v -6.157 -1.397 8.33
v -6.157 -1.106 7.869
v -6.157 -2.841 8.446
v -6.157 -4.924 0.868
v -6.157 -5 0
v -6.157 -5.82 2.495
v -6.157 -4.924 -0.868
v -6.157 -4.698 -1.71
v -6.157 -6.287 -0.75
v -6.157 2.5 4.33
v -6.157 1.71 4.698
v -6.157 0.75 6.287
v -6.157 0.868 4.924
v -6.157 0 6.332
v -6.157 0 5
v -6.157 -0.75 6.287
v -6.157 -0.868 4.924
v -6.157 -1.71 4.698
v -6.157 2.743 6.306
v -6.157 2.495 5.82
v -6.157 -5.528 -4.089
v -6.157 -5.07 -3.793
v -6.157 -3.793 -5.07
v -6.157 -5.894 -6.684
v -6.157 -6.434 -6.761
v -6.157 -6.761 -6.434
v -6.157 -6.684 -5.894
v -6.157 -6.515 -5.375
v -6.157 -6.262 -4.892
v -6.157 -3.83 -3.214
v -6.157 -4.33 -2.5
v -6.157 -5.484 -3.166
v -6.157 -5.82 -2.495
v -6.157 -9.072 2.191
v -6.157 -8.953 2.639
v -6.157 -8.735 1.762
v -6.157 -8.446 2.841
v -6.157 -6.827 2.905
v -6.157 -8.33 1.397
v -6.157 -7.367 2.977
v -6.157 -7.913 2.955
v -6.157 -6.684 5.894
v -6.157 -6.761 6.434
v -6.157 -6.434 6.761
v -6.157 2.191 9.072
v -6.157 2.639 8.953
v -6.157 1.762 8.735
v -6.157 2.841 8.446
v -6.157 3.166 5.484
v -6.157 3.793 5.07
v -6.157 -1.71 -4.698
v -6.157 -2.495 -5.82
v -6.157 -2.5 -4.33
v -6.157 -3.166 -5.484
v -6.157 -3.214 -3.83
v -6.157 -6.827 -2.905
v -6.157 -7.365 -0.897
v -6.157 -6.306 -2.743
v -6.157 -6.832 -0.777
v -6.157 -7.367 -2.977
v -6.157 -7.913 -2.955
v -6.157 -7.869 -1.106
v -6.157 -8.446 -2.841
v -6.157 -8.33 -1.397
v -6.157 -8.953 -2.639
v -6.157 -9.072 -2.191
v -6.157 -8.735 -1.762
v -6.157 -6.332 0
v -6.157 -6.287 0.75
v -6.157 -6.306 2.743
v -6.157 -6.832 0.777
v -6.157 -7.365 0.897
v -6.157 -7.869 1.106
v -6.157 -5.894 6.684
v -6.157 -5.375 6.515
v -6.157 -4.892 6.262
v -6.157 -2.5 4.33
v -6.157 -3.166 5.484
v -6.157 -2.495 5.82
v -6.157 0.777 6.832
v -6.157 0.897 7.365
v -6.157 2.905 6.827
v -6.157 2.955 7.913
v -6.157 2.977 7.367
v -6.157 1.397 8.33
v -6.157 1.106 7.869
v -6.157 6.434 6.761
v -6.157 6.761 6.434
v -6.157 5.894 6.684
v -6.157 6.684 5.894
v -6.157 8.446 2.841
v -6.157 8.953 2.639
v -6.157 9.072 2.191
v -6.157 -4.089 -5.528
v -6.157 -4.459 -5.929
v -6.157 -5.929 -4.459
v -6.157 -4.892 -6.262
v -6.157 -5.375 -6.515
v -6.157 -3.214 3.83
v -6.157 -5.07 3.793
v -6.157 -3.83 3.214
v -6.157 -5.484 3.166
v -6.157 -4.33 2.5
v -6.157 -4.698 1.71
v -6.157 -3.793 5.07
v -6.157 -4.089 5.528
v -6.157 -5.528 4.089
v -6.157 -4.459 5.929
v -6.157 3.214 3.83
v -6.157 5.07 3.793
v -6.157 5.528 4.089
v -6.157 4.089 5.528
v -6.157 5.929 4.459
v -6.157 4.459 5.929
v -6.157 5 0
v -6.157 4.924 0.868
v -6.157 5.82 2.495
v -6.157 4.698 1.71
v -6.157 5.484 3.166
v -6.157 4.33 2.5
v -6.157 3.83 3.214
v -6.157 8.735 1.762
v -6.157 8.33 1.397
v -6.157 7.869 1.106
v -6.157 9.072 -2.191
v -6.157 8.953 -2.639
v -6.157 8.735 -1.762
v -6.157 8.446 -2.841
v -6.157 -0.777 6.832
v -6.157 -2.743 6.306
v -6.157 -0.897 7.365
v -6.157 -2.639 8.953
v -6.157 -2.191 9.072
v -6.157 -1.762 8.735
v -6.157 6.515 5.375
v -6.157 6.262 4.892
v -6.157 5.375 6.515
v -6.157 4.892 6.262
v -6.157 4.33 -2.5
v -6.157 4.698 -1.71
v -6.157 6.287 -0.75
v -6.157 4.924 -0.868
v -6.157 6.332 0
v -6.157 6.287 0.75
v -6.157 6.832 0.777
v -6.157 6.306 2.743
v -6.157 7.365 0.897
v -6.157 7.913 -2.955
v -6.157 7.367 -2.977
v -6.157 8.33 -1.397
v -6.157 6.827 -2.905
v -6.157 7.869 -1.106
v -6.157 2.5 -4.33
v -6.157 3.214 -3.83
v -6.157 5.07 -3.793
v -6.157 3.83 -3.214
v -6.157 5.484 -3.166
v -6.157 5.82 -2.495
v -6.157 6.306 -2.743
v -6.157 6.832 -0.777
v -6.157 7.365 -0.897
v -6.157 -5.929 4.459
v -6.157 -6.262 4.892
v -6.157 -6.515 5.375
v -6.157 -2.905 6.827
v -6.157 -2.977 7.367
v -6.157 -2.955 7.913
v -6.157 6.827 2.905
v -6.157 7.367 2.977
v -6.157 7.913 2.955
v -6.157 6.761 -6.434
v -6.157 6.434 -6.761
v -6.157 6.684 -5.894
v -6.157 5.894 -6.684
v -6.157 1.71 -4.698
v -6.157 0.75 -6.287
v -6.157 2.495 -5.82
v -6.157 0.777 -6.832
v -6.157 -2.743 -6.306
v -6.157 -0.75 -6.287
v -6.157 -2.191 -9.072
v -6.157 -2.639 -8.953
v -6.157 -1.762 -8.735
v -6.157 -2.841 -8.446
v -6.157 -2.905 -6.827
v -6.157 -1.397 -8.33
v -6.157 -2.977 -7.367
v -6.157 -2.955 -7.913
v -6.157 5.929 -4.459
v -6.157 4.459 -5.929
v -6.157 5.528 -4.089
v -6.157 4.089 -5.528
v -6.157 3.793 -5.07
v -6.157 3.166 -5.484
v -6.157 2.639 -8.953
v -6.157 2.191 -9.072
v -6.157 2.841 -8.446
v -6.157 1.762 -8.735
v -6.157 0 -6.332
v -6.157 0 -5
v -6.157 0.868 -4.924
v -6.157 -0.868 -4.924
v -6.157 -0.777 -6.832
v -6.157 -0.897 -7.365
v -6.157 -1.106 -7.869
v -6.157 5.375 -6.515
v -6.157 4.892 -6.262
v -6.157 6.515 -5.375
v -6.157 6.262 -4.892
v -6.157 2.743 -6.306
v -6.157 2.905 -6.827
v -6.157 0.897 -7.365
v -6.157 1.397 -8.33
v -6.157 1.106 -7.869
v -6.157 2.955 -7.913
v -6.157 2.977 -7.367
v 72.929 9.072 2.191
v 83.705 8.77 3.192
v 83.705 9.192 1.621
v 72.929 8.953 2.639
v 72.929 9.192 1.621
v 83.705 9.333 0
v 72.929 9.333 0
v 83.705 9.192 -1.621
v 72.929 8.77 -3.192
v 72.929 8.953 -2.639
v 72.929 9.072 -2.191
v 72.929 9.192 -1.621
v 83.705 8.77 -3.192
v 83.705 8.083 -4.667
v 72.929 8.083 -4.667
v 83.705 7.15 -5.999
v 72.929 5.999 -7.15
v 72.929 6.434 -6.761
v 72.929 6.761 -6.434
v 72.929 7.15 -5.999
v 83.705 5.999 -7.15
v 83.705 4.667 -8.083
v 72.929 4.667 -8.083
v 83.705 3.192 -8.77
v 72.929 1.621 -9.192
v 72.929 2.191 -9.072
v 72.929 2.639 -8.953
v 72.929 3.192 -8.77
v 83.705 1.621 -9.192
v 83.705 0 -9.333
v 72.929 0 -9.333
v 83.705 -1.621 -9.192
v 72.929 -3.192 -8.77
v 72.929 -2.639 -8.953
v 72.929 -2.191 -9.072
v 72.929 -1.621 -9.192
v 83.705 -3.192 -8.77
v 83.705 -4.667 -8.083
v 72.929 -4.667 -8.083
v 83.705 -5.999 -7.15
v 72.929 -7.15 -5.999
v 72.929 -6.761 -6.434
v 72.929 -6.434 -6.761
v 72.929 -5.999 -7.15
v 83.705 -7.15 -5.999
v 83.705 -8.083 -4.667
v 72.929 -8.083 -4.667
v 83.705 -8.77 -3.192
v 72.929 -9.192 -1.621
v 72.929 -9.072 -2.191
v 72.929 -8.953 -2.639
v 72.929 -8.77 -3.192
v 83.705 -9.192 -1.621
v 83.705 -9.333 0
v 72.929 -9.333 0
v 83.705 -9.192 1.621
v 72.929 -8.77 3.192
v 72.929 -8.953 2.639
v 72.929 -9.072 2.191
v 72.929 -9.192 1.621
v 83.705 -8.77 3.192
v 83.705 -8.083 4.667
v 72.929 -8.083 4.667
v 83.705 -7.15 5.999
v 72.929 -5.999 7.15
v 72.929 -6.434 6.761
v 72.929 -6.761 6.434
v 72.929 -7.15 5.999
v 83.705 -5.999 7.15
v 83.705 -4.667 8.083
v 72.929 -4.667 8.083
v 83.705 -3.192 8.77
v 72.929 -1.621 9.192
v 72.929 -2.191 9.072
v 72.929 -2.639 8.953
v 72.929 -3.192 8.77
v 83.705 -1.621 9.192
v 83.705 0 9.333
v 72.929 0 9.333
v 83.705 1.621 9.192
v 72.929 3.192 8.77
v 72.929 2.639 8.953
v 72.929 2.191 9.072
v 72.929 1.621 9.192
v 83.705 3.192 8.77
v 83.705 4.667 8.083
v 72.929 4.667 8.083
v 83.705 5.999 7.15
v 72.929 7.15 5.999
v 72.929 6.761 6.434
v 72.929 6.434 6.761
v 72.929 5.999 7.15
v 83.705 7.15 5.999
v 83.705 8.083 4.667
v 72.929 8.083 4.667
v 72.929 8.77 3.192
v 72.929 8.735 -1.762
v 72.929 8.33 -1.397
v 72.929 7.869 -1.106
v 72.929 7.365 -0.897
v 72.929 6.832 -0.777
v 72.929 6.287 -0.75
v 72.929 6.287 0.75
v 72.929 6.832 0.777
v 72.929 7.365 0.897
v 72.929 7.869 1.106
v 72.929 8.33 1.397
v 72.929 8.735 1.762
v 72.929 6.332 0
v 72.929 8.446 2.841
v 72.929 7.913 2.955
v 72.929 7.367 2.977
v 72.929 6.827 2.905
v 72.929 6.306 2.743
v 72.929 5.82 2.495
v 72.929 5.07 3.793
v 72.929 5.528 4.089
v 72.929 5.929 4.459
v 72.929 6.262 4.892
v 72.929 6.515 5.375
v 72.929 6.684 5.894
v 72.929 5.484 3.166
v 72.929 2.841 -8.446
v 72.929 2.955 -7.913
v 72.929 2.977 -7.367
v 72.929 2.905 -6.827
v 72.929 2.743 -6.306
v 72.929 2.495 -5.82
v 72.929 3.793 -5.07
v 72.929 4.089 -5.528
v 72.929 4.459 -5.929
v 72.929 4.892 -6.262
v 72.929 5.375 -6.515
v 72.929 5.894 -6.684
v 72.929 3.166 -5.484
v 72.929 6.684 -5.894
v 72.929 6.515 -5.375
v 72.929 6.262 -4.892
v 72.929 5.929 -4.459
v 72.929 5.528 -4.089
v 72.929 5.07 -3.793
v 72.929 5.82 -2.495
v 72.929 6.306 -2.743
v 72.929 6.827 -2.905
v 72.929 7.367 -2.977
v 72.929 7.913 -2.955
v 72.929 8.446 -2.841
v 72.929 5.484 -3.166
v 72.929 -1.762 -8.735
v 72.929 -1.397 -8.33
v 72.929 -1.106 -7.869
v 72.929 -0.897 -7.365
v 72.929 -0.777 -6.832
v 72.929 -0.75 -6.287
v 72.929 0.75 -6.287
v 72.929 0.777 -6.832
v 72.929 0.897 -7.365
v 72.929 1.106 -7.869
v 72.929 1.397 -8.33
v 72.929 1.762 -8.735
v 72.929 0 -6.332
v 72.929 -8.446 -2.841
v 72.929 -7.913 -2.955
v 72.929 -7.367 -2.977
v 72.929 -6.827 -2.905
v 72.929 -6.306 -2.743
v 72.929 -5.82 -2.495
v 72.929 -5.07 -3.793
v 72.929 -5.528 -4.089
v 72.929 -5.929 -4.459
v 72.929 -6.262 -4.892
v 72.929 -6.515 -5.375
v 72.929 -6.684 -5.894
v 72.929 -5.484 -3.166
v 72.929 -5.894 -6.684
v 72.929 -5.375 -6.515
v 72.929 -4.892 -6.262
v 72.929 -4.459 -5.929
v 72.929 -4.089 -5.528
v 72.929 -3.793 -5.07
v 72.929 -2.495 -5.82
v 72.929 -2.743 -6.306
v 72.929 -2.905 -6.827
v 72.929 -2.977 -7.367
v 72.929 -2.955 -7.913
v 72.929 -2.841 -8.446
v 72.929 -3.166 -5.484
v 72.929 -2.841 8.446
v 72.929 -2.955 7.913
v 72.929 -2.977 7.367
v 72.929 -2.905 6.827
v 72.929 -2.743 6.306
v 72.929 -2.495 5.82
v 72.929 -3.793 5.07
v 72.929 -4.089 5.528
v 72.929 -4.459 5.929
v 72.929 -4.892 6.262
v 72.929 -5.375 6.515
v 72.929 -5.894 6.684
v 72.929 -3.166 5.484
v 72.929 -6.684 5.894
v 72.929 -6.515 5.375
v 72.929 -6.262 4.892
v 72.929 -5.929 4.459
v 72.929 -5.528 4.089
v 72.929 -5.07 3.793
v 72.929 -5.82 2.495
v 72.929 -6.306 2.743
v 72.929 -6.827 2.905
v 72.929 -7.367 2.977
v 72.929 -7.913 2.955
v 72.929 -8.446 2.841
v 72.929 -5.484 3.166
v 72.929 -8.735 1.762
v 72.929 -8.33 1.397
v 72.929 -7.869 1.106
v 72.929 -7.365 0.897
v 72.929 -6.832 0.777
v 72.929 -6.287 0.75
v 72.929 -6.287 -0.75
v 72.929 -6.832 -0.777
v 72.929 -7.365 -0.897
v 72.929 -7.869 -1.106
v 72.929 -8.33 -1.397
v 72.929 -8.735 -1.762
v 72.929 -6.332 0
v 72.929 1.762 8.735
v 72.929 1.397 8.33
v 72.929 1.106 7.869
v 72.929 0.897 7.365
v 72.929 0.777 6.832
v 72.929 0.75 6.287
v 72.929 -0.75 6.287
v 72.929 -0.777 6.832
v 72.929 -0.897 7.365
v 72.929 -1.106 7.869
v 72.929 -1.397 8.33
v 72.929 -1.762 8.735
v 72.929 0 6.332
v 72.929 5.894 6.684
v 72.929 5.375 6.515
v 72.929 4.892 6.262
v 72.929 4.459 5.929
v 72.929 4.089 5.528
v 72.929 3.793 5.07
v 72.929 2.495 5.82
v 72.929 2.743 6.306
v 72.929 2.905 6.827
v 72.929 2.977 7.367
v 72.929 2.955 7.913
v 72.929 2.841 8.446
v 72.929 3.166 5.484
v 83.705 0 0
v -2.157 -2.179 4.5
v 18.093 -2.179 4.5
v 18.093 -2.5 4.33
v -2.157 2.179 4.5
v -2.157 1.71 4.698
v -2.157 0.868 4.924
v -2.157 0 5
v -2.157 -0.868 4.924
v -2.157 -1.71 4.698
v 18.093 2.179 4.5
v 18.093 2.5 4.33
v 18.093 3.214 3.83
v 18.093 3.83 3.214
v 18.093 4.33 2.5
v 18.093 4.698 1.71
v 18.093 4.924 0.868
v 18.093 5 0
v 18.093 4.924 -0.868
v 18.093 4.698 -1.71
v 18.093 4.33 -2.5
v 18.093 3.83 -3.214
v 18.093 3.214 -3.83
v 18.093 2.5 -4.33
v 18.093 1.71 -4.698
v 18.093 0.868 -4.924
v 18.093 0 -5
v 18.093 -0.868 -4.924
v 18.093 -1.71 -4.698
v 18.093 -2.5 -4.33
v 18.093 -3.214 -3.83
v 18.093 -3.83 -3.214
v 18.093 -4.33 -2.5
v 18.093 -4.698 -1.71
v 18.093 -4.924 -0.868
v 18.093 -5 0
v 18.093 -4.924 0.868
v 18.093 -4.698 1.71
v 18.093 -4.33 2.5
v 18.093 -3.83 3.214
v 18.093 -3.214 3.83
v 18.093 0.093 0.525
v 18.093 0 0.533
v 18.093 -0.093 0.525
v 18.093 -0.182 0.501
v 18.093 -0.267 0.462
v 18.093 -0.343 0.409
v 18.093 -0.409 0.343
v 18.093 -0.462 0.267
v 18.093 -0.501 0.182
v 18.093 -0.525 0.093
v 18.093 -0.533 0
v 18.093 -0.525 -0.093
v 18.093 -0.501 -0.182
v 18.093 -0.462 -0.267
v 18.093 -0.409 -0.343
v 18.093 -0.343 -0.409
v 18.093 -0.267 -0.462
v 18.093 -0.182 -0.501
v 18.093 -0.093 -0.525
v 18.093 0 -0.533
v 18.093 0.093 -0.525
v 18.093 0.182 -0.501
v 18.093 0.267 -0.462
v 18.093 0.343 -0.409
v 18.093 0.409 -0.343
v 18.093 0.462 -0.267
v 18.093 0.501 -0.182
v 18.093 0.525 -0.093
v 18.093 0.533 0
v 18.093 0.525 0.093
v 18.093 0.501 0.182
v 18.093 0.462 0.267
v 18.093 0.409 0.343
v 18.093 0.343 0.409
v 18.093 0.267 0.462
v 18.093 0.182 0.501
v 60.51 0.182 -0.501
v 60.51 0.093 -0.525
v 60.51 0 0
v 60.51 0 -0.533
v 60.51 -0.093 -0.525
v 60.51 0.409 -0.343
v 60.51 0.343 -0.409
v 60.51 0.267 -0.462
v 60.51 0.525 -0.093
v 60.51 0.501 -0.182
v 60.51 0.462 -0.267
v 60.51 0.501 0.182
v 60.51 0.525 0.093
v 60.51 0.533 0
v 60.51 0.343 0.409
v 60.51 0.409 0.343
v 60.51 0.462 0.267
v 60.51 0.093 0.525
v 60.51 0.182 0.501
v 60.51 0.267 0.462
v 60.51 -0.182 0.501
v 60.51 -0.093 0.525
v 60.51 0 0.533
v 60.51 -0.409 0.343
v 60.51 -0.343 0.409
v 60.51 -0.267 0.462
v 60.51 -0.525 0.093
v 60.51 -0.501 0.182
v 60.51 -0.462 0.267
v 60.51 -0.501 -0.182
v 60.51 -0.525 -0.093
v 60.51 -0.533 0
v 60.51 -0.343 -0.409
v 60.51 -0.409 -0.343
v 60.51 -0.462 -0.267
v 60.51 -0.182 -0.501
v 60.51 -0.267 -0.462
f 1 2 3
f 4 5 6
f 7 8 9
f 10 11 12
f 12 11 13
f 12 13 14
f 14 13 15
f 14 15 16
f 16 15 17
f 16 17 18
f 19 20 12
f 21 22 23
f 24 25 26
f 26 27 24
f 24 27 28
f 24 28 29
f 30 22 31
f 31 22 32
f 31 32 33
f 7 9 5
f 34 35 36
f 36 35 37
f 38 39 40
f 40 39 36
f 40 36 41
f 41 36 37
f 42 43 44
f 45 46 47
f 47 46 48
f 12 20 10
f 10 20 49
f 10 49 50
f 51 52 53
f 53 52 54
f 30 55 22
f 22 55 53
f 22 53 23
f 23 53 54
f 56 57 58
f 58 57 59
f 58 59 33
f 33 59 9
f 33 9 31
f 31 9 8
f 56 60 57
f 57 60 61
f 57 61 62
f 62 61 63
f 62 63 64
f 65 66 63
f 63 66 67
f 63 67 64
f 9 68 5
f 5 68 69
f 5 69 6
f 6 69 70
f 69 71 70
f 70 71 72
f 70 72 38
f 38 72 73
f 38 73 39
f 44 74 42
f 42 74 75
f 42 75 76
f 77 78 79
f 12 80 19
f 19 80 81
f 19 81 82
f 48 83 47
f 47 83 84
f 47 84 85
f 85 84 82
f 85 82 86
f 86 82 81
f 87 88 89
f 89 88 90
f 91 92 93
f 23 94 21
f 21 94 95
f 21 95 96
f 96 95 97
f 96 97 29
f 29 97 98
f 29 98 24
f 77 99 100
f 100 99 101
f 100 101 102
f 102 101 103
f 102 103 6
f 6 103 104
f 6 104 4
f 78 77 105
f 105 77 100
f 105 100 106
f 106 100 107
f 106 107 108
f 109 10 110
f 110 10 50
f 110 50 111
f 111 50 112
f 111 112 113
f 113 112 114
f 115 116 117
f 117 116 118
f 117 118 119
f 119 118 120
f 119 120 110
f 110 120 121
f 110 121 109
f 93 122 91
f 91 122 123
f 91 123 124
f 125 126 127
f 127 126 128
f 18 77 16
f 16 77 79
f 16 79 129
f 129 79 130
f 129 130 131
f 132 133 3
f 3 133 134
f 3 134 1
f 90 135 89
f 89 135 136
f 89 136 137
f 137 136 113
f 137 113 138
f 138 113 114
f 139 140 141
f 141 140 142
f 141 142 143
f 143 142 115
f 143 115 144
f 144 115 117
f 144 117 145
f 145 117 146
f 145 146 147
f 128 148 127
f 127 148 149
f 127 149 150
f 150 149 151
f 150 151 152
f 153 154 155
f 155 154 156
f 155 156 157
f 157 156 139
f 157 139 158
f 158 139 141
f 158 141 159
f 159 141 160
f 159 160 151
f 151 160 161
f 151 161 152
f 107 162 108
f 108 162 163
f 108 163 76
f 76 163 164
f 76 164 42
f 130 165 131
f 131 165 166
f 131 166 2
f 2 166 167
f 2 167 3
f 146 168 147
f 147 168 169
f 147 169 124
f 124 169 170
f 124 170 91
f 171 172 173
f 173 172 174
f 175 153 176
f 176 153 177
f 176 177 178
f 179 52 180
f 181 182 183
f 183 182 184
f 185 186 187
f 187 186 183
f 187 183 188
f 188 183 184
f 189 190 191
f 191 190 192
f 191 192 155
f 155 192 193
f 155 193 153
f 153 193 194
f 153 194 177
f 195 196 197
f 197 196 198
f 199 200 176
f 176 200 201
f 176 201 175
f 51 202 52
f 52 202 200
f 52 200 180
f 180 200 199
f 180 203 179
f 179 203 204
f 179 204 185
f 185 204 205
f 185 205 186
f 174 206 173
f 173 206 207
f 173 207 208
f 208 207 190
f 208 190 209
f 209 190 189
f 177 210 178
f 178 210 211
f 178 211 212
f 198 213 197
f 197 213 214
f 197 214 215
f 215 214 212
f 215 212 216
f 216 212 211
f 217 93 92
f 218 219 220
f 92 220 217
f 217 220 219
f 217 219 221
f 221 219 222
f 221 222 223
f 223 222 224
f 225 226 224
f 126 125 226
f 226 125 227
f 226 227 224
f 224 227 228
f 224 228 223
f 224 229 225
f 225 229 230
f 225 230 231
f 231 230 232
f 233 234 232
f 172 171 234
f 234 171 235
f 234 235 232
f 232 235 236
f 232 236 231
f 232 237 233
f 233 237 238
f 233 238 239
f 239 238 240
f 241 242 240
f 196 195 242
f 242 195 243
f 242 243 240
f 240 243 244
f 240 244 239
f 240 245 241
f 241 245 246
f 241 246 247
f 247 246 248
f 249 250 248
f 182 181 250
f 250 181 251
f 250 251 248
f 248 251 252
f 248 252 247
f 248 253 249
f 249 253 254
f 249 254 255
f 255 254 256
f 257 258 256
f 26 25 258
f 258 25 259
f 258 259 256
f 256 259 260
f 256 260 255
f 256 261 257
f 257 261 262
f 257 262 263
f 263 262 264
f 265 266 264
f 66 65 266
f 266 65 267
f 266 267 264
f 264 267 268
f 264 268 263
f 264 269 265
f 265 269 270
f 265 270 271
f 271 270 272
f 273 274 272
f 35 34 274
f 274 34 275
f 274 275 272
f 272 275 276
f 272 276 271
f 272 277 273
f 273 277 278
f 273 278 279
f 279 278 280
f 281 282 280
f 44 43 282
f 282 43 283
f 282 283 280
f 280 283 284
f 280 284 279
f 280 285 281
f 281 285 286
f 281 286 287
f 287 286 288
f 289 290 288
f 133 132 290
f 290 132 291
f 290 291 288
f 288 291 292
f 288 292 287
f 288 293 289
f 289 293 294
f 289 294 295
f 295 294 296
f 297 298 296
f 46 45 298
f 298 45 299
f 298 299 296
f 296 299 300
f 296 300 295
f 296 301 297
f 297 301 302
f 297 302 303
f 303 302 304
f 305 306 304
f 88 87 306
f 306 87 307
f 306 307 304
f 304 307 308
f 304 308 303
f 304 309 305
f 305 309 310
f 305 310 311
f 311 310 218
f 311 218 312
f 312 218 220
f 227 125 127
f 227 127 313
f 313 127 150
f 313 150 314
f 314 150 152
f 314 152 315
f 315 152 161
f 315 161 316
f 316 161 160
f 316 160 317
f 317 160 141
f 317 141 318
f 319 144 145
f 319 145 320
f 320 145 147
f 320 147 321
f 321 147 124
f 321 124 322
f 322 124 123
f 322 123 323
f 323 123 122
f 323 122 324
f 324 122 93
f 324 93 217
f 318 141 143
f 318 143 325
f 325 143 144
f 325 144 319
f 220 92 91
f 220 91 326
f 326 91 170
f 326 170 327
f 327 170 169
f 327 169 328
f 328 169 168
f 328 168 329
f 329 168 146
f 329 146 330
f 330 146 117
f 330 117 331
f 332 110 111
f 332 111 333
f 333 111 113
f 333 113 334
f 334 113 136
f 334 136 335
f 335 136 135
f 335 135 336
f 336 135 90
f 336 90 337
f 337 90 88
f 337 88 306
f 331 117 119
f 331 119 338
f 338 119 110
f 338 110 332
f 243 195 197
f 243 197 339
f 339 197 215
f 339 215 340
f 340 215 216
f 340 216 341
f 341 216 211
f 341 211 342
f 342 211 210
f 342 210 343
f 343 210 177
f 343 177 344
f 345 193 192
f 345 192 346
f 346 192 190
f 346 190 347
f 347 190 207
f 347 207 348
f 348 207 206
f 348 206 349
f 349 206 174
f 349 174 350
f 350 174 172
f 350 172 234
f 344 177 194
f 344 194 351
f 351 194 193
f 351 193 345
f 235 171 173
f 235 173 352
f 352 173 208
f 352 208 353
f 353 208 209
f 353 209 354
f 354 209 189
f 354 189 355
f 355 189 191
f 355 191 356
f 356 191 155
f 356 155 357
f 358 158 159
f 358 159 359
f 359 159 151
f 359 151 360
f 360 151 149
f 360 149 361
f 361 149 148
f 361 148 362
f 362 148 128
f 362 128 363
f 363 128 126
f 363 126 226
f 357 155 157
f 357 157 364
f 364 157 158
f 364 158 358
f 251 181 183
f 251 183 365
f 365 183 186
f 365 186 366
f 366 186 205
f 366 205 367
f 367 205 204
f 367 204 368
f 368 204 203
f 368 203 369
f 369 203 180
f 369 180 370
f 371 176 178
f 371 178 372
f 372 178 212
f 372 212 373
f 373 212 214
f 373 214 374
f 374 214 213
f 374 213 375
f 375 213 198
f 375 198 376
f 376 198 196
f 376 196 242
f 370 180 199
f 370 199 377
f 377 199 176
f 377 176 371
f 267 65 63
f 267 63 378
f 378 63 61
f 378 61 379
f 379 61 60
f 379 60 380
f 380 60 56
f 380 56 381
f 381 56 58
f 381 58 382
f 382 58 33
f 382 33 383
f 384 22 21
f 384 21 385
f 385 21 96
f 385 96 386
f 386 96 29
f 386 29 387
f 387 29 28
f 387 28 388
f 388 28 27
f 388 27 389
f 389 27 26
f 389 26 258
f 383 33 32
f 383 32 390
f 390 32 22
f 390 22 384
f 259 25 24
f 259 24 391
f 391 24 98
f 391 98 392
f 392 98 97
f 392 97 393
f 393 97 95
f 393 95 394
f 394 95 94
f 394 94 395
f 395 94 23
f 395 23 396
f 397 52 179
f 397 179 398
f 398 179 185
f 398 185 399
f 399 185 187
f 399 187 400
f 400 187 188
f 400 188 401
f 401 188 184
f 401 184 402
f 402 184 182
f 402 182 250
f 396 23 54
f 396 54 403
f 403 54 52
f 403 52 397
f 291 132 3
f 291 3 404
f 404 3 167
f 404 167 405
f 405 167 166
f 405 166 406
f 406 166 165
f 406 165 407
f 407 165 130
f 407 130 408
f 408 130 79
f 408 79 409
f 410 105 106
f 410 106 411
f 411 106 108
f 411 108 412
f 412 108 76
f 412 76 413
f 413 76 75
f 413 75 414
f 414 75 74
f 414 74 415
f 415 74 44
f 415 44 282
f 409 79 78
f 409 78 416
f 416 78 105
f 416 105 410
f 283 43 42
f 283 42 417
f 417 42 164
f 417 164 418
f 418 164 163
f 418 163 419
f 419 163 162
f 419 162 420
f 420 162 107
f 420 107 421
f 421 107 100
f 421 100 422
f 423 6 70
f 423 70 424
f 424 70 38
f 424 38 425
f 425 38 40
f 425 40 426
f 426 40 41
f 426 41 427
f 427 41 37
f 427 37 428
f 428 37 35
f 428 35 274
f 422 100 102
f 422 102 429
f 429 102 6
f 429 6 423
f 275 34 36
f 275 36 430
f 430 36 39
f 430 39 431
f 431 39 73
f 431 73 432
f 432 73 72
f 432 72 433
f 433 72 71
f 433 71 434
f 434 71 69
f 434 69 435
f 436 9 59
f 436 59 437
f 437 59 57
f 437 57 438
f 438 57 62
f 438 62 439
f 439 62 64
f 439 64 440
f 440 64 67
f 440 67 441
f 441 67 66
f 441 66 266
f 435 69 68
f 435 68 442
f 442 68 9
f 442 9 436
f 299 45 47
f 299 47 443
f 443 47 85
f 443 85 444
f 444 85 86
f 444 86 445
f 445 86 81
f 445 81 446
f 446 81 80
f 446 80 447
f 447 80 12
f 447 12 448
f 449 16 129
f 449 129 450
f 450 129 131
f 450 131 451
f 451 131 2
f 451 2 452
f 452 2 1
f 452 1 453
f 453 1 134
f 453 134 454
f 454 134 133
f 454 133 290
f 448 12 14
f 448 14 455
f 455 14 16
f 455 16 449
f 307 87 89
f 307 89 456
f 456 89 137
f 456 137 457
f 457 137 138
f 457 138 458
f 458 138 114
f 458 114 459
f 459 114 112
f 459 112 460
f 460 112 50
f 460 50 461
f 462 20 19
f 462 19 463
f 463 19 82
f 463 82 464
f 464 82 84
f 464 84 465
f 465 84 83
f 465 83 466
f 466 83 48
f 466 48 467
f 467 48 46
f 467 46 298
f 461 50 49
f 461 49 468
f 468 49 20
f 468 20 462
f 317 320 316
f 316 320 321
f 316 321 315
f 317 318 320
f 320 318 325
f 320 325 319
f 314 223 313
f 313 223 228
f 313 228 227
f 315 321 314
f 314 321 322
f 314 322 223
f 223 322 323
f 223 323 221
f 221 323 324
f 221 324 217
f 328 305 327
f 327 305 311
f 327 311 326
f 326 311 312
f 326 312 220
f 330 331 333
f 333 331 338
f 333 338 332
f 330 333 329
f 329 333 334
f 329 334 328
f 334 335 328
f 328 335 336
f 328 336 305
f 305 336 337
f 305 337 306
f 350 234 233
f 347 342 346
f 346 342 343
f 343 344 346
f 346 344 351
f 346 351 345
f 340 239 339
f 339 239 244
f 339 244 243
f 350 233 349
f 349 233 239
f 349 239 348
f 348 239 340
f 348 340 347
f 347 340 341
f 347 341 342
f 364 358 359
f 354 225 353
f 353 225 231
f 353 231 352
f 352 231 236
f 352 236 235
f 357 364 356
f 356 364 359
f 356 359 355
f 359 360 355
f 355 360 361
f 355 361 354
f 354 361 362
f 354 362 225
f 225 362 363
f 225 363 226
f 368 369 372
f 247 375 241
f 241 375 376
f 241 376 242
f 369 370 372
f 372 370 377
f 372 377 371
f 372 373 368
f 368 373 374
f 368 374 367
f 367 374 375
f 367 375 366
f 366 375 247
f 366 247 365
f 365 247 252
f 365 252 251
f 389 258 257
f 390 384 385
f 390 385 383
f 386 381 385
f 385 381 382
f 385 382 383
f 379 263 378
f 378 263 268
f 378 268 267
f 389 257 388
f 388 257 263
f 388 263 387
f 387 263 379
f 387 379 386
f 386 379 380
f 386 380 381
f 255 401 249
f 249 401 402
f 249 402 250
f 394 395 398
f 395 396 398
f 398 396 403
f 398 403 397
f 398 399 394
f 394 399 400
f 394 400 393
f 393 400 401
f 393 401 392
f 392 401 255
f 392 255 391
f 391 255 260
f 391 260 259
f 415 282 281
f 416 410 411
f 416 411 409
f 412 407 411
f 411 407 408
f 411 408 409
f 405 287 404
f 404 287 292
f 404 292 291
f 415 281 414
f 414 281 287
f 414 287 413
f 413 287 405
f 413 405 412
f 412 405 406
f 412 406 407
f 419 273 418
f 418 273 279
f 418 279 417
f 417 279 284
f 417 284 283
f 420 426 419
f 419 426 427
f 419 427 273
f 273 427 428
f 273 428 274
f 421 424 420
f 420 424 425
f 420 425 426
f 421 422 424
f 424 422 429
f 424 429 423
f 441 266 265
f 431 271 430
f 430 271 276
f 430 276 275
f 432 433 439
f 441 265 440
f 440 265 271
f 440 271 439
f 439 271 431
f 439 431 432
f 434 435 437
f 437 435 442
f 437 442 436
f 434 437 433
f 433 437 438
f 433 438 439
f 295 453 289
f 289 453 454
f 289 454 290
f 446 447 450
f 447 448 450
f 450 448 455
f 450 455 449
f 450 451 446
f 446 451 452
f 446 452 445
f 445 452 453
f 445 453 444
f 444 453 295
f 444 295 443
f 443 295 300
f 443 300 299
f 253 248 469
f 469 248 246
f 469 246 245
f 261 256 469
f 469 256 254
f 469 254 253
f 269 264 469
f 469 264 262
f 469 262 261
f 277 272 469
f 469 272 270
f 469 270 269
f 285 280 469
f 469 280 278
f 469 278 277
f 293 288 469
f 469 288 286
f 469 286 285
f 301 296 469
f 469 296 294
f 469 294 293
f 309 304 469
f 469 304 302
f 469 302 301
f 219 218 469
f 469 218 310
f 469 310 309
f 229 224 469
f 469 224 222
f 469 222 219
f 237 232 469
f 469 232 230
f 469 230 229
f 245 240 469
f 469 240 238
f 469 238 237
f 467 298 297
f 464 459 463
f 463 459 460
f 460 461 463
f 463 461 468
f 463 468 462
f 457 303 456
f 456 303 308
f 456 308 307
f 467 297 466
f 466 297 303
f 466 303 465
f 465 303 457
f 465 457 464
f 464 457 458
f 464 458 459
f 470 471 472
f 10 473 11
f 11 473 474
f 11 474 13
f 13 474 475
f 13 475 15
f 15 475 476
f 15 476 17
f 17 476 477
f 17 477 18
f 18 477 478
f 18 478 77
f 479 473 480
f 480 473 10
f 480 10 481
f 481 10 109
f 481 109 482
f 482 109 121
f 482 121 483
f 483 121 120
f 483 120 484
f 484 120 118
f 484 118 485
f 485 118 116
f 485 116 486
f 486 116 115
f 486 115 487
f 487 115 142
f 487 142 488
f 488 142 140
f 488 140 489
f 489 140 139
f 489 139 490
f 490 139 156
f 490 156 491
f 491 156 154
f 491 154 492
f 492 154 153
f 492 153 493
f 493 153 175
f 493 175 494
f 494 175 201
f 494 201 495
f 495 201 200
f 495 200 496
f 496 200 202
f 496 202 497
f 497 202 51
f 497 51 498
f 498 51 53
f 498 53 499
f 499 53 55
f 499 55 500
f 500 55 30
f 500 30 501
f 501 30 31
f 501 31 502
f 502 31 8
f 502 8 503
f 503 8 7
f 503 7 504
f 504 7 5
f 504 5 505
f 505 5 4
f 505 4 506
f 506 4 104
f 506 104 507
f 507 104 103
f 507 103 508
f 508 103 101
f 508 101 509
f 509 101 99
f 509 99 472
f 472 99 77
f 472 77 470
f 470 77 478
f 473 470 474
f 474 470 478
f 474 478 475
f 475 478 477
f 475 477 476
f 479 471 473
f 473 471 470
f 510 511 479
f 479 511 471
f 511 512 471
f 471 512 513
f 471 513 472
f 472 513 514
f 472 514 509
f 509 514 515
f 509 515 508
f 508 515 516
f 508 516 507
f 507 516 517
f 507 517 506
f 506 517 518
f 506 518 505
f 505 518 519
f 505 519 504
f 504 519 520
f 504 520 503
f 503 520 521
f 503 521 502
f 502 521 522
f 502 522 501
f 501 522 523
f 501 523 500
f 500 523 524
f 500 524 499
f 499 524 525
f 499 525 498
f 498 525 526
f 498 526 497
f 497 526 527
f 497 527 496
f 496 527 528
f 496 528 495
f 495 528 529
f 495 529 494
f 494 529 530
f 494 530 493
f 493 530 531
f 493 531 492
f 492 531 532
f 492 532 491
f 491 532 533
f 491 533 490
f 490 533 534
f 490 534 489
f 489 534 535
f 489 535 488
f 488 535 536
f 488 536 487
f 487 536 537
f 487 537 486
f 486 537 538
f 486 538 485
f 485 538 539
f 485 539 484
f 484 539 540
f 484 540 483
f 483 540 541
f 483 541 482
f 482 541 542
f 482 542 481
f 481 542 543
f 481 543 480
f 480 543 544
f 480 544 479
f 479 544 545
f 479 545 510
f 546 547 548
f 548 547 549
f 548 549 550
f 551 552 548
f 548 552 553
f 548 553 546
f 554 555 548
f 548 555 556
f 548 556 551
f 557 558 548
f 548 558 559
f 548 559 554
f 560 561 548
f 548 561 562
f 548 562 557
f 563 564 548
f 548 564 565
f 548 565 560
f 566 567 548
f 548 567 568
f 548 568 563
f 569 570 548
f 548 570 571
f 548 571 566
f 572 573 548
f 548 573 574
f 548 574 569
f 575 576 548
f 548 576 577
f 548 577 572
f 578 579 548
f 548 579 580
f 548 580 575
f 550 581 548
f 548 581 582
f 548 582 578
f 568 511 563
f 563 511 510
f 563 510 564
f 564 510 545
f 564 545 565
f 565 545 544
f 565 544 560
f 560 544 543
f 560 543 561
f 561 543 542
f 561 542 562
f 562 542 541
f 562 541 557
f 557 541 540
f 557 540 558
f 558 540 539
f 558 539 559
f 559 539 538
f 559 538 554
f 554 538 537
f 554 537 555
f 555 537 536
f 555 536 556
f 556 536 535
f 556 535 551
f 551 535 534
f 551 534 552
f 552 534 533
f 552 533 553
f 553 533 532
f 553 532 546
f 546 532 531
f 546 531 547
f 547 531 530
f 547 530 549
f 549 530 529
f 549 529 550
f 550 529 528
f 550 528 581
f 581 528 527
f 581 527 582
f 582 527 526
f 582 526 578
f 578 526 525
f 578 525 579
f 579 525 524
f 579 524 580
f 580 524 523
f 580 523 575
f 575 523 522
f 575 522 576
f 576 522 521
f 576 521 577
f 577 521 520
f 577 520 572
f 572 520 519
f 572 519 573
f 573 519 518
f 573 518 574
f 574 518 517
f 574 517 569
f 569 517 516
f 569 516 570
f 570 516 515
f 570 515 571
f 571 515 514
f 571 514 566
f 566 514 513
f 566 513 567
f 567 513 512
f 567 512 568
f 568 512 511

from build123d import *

# Parameters (mm, degrees)
BASPROSKE_W         = 59.315
BASPROSKE_H         = 7
TOOTHCUT_DEPTH      = 61.135424044
TEETHCUTS_COUNT     = 12
TEETHCUTS_ANGLE     = 330
BORSKE_R            = 0.4
BORE_DEPTH          = 50.0000508
SCALE1_SCALE        = 2
BOSS_EXTRUDE1_START = 16.163
SKETCH9_R           = 14
BOSS_EXTRUDE1_DEPTH = 16.163
SCALE2_SCALE        = 0.666666667
SKETCH10_R          = 5
CUT_EXTRUDE1_DEPTH  = 4
CUT_EXTRUDE3_DEPTH  = 20.25


with BuildPart() as part:
    # BasProSke → Base-Revolve (revolve)
    with BuildSketch(Plane(origin=(0, 0, 0), x_dir=(1, 0, 0), z_dir=(0, 1, 0)), mode=Mode.PRIVATE) as base_revolve_sk:
        with Locations((29.6575, 3.5)):
            Rectangle(BASPROSKE_W, BASPROSKE_H)
    revolve(base_revolve_sk.sketch.rotate(Axis((-10, 0, 0), (1, 0, 0)), 180), axis=Axis((-10, 0, 0), (1, 0, 0)))

    # TooCutSke → ToothCut (cut, through all)
    with BuildSketch(Plane(origin=(0, 0, 0), x_dir=(0, 0, -1), z_dir=(1, 0, 0))):
        with BuildLine():
            ThreePointArc((0.562207301, 4.715604304), (0, 4.749), (-0.562207301, 4.715604304))
            ThreePointArc((-0.562207301, 4.715604304), (-0.837528627, 5.917009812), (-1.672850686, 6.823328788))
            ThreePointArc((-1.672850686, 6.823328788), (0, 7.0254), (1.672850686, 6.823328788))
            ThreePointArc((1.672850686, 6.823328788), (0.837528627, 5.917009812), (0.562207301, 4.715604304))
        make_face()
    toothcut = extrude(amount=TOOTHCUT_DEPTH, mode=Mode.SUBTRACT)

    # TeethCuts: ToothCut ×12 about axis
    teethcuts_axis = Axis((-10, 0, 0), (1, 0, 0))
    for i in range(1, TEETHCUTS_COUNT):
        add(toothcut.rotate(teethcuts_axis, i * TEETHCUTS_ANGLE / (TEETHCUTS_COUNT - 1)), mode=Mode.SUBTRACT)

    # BorSke → Bore (cut, symmetric)
    with BuildSketch(Plane(origin=(0, 0, 0), x_dir=(0, 0, -1), z_dir=(1, 0, 0))):
        Circle(BORSKE_R)
    extrude(amount=BORE_DEPTH, both=True, mode=Mode.SUBTRACT)


with BuildPart() as part_1:
    # Scale1: scaled about (29.676274456, 0, 0)
    add(part.part.scale(SCALE1_SCALE).moved(Location((-29.676274456, 0, 0))))

    # Sketch9 → Boss-Extrude1 (add)
    with BuildSketch(Plane(origin=(88.953725544, 0, 0), x_dir=(0, 0, -1), z_dir=(1, 0, 0)).offset(BOSS_EXTRUDE1_START)):
        with Locations(Location((0, 0, 0), (0, 0, 166.421298953))):
            Circle(SKETCH9_R)
    extrude(amount=-BOSS_EXTRUDE1_DEPTH)


with BuildPart() as part_2:
    # Scale2: scaled about (40.880908015, 0, 0)
    add(part_1.part.scale(SCALE2_SCALE).moved(Location((13.626969338, 0, 0))))

    # Sketch10 → Cut-Extrude1 (cut)
    with BuildSketch(Plane.ZY.offset(6.157213633)):
        Circle(SKETCH10_R)
    extrude(amount=-CUT_EXTRUDE1_DEPTH, mode=Mode.SUBTRACT)

    # Sketch11 → Cut-Extrude3 (cut)
    with BuildSketch(Plane.ZY.offset(2.157213633)):
        with BuildLine():
            Line((4.5, 0), (4.5, 2.179449472))
            ThreePointArc((4.5, 2.179449472), (-5, 0), (4.5, -2.179449472))
            Line((4.5, -2.179449472), (4.5, 0))
        make_face()
    extrude(amount=-CUT_EXTRUDE3_DEPTH, mode=Mode.SUBTRACT)


solid = part_2.part
